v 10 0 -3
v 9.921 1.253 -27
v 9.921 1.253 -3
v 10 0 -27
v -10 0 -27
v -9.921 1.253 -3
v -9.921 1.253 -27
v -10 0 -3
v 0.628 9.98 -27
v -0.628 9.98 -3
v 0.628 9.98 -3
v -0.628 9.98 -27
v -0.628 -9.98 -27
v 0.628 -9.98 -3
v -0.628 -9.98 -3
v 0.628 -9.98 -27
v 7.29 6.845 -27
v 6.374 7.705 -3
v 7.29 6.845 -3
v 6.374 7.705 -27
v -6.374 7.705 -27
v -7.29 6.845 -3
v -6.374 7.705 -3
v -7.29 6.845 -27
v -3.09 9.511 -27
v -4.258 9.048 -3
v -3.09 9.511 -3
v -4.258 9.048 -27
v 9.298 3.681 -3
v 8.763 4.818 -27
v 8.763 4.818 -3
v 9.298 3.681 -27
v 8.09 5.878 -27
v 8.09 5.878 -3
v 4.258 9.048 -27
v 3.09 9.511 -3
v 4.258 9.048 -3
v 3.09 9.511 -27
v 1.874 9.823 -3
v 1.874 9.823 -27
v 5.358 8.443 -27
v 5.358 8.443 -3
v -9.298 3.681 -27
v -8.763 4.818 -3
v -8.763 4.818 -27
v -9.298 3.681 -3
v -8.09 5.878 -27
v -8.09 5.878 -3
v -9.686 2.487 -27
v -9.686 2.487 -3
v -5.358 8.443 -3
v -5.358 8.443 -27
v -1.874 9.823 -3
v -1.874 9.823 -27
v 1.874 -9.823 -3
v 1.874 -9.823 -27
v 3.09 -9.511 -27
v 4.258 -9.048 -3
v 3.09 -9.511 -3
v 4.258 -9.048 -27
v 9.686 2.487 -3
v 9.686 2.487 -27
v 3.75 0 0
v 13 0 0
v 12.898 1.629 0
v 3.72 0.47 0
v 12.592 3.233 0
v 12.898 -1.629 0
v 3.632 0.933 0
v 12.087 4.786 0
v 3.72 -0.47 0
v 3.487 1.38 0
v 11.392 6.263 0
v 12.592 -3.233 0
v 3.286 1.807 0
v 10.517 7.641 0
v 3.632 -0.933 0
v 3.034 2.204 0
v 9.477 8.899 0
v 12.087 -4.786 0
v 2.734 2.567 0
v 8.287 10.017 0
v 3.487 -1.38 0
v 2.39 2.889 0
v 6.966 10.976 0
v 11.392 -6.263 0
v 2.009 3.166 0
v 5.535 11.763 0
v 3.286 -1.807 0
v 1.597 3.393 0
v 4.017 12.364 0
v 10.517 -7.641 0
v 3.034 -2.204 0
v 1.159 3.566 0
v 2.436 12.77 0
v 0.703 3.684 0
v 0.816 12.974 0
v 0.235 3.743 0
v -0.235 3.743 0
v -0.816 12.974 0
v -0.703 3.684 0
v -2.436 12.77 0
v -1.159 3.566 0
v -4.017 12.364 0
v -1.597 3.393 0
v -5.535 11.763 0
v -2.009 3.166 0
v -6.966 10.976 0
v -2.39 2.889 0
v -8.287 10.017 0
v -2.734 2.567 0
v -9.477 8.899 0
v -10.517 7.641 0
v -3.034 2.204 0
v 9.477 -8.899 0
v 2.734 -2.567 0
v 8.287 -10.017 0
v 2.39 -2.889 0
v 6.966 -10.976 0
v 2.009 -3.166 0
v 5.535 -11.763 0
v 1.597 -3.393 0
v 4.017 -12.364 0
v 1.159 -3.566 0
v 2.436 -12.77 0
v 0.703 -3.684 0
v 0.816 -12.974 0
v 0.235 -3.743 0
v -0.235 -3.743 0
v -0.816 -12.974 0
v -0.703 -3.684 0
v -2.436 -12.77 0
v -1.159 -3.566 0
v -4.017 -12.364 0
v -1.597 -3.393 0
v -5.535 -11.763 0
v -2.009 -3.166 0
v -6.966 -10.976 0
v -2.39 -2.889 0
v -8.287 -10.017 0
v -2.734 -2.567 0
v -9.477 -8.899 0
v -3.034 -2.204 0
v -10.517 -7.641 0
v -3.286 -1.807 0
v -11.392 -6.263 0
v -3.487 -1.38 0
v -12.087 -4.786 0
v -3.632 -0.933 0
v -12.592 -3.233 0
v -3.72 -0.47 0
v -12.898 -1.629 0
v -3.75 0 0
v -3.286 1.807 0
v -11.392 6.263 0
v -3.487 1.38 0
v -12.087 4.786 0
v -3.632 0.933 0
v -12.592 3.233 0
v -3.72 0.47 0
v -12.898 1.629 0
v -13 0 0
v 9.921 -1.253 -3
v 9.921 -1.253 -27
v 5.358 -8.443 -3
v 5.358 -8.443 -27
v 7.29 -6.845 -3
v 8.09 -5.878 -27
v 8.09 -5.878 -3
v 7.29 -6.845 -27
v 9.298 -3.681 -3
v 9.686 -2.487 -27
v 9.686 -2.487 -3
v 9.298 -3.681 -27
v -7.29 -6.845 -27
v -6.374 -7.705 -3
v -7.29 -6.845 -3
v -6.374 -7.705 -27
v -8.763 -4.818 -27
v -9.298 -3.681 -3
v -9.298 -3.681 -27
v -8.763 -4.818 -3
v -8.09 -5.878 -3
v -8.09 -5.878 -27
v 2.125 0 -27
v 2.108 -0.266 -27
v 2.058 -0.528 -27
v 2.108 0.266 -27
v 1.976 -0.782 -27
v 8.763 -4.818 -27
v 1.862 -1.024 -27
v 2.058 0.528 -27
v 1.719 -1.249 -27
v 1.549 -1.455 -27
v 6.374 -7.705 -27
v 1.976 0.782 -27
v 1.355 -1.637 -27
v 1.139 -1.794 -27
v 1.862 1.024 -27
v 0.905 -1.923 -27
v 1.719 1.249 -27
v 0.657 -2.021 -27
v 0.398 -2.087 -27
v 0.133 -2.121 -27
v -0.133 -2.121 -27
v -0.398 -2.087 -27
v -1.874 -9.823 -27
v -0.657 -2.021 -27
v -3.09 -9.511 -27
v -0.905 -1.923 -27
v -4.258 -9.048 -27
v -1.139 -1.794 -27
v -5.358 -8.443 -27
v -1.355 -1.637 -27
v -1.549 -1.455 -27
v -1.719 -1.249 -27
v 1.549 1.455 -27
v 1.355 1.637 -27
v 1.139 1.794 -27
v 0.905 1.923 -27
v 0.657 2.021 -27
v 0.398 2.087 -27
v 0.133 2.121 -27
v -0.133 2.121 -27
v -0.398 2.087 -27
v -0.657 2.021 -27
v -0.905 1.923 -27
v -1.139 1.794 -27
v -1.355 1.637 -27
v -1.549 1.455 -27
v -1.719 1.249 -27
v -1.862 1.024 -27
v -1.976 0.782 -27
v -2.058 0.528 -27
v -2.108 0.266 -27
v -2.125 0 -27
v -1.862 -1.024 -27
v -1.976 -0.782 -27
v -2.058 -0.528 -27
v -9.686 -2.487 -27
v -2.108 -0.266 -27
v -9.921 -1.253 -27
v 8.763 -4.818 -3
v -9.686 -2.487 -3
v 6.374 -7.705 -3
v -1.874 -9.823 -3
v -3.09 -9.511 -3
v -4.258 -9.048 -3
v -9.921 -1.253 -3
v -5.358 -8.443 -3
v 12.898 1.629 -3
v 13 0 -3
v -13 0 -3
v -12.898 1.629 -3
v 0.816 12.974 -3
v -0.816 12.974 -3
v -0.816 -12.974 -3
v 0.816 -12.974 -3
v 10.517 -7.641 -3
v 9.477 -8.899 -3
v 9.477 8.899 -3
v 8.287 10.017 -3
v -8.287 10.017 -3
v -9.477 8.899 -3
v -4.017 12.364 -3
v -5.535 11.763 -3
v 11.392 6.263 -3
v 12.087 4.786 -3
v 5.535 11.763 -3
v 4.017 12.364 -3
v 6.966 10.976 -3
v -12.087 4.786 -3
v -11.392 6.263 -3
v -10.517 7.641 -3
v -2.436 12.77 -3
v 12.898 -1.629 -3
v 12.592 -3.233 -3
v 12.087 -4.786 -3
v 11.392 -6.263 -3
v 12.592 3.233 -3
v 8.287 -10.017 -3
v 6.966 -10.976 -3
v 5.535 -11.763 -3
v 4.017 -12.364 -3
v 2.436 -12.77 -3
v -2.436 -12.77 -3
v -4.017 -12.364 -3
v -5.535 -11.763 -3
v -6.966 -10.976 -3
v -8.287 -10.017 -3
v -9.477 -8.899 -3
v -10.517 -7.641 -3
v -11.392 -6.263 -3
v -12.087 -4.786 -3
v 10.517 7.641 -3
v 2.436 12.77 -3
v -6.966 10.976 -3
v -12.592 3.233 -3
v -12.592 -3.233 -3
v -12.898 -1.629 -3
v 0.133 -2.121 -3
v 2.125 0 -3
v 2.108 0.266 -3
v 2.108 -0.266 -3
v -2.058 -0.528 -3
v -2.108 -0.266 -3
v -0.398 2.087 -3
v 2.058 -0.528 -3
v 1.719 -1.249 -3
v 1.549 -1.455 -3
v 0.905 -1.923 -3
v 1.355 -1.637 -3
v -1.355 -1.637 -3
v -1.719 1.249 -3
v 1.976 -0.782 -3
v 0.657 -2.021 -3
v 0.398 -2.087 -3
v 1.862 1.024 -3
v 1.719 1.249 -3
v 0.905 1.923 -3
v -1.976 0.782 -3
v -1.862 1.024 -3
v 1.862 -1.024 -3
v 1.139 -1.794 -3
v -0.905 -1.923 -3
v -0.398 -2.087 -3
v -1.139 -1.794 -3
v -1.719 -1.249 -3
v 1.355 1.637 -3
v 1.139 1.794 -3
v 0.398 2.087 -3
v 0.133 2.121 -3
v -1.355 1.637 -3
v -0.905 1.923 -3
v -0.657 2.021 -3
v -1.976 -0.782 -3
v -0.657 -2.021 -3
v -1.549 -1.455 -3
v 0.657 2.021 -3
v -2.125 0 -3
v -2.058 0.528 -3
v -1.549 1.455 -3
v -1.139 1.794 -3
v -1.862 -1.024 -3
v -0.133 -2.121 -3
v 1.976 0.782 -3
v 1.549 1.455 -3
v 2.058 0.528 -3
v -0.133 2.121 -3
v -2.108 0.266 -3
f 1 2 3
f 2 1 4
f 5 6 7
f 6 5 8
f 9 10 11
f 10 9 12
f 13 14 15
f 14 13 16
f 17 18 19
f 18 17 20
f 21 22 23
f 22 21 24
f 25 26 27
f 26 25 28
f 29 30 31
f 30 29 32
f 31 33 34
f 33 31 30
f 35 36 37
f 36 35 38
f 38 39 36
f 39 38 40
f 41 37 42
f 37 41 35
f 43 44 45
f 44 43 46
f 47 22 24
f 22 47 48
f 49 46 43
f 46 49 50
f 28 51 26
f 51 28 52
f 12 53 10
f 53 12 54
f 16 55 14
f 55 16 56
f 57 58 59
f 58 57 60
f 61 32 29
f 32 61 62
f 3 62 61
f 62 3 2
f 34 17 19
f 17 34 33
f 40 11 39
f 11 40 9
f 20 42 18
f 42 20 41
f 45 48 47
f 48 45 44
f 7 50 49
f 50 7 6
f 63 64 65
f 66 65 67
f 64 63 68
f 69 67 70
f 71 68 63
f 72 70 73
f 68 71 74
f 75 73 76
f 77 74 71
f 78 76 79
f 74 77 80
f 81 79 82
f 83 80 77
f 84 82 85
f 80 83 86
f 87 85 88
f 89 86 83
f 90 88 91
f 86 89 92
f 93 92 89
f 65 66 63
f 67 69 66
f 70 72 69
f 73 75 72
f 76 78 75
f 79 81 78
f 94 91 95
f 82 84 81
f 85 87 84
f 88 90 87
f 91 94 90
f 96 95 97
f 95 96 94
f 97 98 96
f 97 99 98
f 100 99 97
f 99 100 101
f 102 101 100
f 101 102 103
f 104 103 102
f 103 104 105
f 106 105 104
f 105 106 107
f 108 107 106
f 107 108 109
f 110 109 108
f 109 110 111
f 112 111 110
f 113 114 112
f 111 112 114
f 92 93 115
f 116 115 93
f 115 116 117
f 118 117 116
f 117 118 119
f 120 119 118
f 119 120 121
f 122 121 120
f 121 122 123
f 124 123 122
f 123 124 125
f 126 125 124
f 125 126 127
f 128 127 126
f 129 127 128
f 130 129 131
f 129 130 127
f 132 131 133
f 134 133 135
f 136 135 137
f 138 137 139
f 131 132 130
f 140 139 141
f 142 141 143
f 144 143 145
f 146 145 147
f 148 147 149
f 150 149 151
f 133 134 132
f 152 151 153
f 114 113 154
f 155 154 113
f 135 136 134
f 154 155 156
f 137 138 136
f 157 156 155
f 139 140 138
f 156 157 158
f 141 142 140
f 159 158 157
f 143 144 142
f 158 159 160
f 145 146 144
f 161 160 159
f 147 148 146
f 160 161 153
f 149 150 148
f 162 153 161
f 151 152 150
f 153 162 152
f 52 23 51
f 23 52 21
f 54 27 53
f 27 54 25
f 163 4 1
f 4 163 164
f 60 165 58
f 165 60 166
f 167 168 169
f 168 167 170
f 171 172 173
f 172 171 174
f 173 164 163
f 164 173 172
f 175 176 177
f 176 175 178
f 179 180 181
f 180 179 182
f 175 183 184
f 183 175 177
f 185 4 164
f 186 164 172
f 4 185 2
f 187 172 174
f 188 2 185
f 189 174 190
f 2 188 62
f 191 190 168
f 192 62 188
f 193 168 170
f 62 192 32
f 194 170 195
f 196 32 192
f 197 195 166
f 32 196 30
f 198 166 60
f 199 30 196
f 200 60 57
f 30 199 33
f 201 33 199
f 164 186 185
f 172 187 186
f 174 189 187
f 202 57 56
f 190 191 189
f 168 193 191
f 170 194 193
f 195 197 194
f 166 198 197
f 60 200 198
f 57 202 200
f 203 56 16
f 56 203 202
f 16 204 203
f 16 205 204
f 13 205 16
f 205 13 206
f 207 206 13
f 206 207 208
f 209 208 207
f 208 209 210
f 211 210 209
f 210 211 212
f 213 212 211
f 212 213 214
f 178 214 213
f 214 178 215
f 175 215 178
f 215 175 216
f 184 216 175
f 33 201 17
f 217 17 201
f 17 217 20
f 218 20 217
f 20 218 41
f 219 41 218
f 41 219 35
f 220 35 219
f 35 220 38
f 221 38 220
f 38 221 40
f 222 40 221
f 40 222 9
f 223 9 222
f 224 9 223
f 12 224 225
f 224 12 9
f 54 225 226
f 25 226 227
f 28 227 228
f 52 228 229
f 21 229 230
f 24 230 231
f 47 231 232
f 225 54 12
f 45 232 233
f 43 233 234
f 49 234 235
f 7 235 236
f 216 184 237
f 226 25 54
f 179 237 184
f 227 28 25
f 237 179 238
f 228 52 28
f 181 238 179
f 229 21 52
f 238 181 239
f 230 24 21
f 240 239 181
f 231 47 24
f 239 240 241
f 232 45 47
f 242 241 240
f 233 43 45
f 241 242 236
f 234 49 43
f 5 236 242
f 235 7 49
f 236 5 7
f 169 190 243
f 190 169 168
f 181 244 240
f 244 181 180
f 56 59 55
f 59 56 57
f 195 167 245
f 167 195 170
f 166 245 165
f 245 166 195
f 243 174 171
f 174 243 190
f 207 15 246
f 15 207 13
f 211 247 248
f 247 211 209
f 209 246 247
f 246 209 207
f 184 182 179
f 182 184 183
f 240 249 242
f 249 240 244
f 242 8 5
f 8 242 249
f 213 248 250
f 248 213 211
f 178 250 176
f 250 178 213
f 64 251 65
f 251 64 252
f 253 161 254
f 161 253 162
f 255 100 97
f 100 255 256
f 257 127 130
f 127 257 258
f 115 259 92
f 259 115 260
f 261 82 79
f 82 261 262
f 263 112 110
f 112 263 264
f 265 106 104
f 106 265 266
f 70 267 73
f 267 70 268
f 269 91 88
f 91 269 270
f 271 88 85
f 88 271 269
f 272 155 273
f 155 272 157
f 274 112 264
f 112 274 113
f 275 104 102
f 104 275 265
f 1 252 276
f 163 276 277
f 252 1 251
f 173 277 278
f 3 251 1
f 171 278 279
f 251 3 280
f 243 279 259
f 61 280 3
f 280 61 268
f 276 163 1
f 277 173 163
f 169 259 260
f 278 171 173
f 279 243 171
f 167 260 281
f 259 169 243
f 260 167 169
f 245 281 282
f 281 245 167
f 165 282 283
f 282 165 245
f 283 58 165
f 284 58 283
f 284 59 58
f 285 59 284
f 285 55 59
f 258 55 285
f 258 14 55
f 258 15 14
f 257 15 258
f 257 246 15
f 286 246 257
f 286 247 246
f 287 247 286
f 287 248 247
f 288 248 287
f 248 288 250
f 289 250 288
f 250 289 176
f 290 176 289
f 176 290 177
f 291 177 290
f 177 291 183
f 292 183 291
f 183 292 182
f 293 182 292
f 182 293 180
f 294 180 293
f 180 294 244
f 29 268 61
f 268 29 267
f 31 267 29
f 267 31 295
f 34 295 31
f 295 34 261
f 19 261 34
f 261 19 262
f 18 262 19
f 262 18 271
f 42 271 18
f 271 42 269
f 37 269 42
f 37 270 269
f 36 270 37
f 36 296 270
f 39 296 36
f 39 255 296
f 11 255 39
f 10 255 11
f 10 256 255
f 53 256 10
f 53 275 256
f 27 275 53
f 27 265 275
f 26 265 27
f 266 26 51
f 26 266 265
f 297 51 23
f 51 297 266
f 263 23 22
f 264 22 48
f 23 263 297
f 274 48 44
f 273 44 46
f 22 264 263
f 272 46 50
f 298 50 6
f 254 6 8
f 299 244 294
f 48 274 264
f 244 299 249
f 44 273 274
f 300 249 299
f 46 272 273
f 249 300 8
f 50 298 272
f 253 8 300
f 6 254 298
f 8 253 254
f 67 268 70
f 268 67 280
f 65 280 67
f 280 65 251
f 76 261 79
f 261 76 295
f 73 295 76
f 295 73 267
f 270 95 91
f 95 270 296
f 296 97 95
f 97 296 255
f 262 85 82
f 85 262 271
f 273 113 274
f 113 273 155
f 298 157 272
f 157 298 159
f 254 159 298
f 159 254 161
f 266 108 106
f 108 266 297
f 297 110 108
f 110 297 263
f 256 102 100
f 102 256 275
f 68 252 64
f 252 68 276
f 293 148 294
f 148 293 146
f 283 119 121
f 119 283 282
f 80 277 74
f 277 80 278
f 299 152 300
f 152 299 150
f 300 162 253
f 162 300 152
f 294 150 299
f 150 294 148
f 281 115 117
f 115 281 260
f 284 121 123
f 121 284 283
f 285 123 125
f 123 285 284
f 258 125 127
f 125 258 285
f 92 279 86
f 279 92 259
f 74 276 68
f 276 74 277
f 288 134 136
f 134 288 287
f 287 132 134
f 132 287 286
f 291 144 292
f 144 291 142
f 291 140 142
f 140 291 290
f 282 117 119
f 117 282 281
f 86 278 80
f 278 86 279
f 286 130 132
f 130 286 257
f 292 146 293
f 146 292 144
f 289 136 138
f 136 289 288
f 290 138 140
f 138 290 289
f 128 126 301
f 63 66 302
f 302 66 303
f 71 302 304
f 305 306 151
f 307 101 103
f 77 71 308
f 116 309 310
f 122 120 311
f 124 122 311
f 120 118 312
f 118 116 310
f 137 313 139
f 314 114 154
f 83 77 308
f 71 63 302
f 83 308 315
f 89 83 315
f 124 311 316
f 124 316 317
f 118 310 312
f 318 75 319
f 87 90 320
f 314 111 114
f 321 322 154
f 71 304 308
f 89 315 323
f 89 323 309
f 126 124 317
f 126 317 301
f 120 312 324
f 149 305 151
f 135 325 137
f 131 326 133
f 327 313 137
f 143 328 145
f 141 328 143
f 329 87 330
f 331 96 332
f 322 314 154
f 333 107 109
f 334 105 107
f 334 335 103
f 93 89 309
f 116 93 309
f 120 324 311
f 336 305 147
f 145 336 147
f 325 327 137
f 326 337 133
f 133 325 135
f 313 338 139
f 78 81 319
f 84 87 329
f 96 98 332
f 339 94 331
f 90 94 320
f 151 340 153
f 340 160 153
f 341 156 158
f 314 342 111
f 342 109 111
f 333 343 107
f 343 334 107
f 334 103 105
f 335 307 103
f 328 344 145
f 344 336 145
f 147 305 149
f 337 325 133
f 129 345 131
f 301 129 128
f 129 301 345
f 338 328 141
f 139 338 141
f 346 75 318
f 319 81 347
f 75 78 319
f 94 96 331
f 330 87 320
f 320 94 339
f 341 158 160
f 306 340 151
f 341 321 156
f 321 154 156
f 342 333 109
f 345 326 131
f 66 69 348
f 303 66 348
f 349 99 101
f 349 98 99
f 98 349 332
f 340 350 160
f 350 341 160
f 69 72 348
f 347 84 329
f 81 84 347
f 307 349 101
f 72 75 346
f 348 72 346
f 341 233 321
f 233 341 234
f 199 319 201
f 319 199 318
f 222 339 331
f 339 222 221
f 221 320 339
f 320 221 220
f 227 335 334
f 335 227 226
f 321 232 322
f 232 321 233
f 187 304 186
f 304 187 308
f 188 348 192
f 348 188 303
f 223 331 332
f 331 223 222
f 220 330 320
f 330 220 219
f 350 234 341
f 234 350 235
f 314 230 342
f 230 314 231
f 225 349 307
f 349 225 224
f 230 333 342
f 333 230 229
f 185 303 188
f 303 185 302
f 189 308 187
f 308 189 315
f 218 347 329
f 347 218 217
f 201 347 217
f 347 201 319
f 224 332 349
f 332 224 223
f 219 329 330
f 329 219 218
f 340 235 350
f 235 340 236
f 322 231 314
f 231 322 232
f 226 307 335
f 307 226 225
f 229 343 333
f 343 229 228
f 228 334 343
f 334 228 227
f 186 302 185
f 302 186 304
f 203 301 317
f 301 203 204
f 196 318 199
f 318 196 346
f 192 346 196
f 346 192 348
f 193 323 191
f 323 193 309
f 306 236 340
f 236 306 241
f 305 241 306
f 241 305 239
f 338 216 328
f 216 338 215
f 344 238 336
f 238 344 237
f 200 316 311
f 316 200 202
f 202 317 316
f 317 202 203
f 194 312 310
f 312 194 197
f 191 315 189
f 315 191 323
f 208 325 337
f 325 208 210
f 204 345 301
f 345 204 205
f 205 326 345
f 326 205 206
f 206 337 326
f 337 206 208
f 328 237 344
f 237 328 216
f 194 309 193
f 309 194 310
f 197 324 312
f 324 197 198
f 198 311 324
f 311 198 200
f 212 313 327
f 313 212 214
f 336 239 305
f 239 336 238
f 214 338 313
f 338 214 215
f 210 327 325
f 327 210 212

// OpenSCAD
$fn = 50;


difference() {
	union() {
		translate(v = [0, 0, -27.0000000000]) {
			cylinder(h = 27, r = 10.0000000000);
		}
		translate(v = [0, 0, -3.0000000000]) {
			cylinder(h = 3, r = 13.0000000000);
		}
	}
	union() {
		translate(v = [0, 0, 0]) {
			rotate(a = [0, 0, 0]) {
				difference() {
					union() {
						#translate(v = [0, 0, -27.0000000000]) {
							cylinder(h = 27, r = 2.0000000000);
						}
						#translate(v = [0, 0, -3]) {
							cylinder(h = 3, r = 10.0000000000, r1 = 2.1250000000, r2 = 3.7500000000);
						}
						#translate(v = [0, 0, -27.0000000000]) {
							cylinder(h = 27, r = 2.1250000000);
						}
						#translate(v = [0, 0, -27.0000000000]) {
							cylinder(h = 27, r = 2.0000000000);
						}
					}
					union();
				}
			}
		}
	}
}
